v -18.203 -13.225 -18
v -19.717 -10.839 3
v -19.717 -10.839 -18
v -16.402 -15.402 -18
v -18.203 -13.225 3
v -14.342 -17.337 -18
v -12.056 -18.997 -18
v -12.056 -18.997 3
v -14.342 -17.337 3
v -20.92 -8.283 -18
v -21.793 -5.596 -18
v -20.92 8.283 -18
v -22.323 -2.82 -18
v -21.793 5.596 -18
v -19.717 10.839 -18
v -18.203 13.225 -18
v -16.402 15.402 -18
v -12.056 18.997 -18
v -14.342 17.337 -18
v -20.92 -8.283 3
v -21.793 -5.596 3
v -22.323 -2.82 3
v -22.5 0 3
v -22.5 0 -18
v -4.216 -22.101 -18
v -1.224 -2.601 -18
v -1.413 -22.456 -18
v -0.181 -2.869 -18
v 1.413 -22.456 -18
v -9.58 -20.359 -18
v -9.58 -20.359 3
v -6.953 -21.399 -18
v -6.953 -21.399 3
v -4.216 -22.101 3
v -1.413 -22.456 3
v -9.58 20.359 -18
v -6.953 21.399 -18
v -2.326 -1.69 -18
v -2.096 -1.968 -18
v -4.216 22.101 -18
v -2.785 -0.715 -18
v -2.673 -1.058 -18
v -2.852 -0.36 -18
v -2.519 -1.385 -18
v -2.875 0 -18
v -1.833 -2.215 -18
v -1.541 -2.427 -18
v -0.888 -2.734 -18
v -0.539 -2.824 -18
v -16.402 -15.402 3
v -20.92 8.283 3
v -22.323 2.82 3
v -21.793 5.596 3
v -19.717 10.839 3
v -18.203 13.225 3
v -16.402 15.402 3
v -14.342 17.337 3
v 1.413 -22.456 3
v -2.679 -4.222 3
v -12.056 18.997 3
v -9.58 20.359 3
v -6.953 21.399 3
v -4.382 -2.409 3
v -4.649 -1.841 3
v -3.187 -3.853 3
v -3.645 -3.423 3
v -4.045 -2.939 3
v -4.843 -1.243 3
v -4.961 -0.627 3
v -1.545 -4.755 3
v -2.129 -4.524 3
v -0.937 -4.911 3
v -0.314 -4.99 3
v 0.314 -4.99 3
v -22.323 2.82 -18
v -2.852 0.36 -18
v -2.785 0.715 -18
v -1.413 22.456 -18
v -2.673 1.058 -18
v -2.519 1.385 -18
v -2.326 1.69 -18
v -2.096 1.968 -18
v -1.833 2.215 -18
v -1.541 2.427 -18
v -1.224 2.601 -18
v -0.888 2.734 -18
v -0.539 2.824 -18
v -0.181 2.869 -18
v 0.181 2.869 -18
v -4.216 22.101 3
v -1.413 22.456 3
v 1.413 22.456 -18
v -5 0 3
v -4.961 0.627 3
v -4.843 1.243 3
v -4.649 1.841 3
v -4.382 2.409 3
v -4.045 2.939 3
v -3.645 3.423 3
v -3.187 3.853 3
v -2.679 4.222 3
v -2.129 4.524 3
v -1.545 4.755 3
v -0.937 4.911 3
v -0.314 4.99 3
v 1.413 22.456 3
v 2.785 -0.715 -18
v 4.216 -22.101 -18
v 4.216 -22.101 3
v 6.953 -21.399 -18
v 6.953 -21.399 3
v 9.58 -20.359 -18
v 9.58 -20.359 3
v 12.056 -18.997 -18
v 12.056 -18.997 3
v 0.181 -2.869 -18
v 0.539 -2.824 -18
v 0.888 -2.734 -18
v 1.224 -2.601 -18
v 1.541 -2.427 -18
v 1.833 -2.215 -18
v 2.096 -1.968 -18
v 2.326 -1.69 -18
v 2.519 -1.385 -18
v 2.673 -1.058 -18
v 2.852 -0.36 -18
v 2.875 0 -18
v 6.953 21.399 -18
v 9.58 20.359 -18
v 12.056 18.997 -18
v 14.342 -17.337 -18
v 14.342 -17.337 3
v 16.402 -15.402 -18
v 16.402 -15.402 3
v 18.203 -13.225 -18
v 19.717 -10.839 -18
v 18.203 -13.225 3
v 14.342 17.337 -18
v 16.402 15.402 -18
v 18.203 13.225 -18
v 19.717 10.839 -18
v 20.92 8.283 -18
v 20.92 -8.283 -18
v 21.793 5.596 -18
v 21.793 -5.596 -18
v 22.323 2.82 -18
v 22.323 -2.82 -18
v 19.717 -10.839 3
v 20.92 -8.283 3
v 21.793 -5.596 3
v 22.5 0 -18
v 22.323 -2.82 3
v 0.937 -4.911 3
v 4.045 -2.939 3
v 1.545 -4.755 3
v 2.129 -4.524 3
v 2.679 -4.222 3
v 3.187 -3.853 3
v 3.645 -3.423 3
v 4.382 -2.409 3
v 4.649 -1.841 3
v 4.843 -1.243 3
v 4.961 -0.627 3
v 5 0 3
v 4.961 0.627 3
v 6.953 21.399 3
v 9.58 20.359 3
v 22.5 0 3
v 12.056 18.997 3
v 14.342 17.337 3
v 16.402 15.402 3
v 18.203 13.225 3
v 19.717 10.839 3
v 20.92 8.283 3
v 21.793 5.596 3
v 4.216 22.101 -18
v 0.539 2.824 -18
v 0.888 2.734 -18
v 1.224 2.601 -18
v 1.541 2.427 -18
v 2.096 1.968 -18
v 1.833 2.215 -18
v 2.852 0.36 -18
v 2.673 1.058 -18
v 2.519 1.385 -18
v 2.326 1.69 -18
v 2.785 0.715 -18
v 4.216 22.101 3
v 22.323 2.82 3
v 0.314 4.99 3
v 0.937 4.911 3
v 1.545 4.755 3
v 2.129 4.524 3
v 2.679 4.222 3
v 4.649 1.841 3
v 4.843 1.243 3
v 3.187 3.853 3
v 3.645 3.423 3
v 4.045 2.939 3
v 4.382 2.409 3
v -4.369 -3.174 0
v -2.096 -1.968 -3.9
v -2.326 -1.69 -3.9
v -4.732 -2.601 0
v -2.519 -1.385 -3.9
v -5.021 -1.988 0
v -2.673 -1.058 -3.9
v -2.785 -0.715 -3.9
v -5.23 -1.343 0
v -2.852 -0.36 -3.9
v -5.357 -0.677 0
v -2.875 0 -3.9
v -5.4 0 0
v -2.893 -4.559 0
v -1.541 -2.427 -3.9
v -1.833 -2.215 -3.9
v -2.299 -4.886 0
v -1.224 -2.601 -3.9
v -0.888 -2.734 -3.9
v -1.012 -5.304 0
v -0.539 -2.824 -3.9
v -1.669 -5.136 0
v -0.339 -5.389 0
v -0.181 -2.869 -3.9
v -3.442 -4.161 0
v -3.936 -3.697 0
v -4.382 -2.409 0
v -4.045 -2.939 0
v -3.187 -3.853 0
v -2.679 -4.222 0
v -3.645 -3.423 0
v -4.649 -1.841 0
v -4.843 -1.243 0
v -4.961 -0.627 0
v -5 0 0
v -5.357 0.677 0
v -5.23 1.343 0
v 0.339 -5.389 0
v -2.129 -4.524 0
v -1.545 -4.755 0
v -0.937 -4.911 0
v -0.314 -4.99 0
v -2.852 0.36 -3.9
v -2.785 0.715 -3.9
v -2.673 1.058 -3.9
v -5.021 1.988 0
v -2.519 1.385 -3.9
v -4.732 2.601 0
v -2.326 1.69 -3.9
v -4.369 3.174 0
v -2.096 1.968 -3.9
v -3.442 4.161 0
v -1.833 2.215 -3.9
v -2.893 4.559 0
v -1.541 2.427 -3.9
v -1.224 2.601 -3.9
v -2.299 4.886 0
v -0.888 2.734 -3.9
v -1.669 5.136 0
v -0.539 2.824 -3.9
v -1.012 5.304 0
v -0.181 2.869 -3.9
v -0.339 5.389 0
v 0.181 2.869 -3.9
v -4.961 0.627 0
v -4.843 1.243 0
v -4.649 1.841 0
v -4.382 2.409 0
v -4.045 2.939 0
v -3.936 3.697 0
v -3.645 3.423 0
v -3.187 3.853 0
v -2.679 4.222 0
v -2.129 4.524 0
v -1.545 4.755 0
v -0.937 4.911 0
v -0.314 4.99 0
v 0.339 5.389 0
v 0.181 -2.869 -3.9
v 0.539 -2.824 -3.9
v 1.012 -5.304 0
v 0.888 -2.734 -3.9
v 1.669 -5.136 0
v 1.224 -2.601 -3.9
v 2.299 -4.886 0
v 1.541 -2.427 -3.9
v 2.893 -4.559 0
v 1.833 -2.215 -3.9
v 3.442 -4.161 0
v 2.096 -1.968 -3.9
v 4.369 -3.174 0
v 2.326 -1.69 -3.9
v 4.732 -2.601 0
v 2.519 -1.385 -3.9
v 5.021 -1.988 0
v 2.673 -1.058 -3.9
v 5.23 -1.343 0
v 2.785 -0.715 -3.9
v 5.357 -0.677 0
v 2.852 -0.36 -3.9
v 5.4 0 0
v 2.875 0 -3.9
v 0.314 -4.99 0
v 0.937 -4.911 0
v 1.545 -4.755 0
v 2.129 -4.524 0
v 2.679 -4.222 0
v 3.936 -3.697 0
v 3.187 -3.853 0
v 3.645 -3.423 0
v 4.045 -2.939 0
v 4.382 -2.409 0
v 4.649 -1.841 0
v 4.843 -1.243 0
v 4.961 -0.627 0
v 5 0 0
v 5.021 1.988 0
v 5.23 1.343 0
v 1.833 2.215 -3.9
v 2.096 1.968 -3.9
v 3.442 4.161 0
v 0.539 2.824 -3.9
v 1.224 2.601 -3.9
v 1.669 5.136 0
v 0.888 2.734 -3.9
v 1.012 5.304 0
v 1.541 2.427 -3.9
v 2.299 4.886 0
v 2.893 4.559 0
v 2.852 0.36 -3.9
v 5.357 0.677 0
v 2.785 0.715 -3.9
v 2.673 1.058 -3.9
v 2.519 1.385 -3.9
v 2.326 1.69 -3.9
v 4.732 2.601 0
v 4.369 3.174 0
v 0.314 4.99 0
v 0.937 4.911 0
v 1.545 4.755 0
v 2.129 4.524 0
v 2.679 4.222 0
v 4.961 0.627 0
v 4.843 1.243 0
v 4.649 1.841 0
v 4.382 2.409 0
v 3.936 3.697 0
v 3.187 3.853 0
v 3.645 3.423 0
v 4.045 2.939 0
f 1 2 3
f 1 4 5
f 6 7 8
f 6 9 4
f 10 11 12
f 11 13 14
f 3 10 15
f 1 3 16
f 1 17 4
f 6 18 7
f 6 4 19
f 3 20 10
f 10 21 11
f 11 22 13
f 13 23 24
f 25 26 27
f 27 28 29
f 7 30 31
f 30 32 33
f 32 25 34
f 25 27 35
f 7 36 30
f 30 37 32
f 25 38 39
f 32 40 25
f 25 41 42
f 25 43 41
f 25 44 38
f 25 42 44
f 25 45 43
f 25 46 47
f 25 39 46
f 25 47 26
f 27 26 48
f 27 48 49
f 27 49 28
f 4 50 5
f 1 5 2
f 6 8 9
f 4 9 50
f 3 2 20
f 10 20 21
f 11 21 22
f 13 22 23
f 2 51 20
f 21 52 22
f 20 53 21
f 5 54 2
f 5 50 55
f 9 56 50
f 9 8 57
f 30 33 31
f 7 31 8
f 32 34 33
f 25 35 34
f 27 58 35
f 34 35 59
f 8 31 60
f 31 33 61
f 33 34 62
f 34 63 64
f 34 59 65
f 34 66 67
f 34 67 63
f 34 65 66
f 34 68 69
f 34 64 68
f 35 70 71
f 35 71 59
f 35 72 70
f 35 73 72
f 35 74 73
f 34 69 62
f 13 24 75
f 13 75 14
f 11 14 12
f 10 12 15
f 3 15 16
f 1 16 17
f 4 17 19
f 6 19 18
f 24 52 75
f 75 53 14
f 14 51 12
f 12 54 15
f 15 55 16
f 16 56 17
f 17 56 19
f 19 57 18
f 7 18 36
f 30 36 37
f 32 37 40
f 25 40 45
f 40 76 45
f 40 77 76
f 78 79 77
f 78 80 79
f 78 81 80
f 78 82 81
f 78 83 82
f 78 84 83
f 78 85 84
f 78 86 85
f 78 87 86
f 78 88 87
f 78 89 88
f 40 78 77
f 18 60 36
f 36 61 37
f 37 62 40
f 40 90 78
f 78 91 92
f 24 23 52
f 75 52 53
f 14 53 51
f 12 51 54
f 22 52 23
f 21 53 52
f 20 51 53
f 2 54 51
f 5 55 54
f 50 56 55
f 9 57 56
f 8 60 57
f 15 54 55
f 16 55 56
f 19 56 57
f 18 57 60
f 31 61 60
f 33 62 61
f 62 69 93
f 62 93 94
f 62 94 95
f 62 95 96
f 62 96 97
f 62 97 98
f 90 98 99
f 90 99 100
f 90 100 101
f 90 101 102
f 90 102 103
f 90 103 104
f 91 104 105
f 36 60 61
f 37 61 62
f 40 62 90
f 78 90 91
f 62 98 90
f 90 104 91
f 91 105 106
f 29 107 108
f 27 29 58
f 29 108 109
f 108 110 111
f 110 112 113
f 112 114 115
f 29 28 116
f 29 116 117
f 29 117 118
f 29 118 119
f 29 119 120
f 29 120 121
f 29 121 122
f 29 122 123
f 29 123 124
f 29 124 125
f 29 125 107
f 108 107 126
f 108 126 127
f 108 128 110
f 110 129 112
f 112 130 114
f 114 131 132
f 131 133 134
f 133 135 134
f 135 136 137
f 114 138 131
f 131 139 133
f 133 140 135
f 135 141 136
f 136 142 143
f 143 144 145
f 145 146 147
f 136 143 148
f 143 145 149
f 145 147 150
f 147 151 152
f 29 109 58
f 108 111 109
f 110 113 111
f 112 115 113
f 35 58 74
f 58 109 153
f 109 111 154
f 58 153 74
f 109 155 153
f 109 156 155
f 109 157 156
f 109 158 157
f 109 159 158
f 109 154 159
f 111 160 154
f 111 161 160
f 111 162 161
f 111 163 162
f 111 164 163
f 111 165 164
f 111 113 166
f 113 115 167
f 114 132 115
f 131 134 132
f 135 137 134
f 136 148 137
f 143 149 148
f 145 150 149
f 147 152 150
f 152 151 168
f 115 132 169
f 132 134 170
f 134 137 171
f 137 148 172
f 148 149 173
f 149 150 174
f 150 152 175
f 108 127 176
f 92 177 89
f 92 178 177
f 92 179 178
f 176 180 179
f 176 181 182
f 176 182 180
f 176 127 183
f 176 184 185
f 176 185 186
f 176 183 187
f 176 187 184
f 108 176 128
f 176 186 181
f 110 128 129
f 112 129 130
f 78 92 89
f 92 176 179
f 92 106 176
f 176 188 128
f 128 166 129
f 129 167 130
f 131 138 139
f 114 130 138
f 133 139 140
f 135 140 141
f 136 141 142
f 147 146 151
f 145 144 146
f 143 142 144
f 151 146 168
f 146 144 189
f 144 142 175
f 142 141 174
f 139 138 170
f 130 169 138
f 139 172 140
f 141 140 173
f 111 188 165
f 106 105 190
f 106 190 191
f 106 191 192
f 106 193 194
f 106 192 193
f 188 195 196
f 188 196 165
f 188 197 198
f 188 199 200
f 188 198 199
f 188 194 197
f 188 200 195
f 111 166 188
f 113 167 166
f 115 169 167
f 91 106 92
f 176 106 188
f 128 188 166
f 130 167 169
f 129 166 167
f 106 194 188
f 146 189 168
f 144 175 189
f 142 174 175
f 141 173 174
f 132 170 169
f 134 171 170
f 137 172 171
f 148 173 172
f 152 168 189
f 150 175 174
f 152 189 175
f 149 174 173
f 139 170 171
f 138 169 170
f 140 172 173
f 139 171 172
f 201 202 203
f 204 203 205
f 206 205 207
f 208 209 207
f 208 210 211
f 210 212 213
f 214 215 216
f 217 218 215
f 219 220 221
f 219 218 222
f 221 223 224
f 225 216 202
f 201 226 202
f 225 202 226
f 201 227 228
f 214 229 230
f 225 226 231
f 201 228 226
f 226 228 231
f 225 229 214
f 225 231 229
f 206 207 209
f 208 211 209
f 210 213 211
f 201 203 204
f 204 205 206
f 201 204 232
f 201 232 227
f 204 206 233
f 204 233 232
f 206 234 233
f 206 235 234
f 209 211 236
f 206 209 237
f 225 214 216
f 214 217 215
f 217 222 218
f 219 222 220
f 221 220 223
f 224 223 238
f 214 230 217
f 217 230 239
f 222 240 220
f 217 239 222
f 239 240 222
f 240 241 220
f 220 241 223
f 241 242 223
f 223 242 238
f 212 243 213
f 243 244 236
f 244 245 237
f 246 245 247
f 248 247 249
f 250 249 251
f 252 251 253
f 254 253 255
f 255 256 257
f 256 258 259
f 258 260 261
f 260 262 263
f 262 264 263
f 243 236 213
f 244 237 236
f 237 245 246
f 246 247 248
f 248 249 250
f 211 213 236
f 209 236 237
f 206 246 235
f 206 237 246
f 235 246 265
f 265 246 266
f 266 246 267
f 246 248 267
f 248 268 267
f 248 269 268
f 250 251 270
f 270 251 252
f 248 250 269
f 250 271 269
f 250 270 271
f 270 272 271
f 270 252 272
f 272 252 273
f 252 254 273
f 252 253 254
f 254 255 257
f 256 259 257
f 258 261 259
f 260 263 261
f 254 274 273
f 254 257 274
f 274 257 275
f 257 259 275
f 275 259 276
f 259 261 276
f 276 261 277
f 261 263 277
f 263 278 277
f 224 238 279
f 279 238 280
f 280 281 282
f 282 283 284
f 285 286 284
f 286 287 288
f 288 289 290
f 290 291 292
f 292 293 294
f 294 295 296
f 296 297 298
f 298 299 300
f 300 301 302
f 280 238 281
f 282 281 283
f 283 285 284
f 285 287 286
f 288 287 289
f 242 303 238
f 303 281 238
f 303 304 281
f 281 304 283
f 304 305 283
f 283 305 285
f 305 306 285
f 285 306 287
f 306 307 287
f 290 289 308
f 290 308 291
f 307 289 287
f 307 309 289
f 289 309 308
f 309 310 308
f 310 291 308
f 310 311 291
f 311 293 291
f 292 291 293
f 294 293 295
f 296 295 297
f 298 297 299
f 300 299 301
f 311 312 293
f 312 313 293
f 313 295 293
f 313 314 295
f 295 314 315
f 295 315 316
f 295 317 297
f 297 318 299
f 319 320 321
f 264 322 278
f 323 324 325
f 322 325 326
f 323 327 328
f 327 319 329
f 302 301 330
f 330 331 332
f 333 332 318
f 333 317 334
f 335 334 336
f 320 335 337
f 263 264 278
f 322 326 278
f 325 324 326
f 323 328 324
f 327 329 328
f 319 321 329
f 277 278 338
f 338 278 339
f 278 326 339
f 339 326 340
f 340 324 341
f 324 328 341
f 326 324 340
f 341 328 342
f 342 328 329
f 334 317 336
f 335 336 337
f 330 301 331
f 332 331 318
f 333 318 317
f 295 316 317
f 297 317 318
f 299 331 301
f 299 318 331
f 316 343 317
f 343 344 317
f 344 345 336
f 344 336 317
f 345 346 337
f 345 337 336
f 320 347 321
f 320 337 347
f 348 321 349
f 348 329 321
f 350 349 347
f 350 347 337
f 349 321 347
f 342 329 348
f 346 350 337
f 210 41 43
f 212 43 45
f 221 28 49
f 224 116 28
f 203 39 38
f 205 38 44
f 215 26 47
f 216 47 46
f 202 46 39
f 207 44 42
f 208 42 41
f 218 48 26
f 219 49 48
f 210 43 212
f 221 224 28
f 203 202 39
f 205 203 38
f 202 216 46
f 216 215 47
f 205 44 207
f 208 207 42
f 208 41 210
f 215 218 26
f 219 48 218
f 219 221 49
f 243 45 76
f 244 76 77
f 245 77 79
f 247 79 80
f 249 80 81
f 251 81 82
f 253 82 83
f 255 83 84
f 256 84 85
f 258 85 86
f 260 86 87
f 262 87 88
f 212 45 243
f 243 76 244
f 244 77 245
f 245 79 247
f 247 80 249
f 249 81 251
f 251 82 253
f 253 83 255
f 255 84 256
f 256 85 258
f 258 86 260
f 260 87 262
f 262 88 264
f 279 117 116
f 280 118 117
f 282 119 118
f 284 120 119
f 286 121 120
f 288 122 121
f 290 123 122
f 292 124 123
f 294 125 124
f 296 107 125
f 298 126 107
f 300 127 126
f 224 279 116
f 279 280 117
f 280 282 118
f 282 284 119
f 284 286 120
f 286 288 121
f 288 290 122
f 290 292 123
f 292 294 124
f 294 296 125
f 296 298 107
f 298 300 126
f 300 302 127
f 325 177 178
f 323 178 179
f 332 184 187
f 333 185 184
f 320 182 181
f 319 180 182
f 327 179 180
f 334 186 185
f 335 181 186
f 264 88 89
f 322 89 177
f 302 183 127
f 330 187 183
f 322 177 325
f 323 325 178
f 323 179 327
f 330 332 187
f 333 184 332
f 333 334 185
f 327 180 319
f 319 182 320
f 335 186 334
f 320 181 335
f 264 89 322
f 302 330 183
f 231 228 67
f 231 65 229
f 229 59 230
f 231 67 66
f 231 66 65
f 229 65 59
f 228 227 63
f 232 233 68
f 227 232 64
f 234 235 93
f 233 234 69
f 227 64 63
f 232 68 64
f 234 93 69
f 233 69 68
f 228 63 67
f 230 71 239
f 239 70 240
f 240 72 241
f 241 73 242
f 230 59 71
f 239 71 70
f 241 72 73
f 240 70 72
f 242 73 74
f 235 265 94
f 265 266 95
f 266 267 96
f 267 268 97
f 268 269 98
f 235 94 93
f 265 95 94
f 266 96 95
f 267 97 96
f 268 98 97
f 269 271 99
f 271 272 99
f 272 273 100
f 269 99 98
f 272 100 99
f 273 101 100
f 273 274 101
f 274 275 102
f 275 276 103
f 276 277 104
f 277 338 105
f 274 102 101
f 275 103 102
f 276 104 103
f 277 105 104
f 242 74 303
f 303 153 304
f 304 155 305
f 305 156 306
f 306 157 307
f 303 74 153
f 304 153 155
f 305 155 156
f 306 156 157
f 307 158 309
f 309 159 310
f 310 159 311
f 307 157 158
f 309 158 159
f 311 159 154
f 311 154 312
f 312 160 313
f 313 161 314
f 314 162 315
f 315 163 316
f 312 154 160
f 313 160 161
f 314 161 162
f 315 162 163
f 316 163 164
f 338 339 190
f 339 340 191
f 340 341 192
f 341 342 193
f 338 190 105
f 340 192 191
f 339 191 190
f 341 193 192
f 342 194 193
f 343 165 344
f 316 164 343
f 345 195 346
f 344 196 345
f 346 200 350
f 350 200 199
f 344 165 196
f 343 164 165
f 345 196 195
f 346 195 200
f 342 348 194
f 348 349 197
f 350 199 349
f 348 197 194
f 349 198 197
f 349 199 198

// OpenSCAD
$fn = 50;

difference() {
	union() {
		translate(v = [0, 0, -18.0]) {
			cylinder(h = 21, r = 22.5);
		}
		#translate(v = [0, 0, -21.0]) {
			cylinder(h = 21, r = 2.875);
		}
	}
	union() {
		translate(v = [0, 0, 0]) {
			rotate(a = [0, 0, 0]) {
				difference() {
					union() {
						translate(v = [0, 0, -21.0]) {
							cylinder(h = 21, r = 2.6);
						}
						translate(v = [0, 0, -3.9]) {
							cylinder(h = 3.9, r1 = 2.875, r2 = 5.4);
						}
						translate(v = [0, 0, -21.0]) {
							cylinder(h = 21, r = 2.875);
						}
						translate(v = [0, 0, -21.0]) {
							cylinder(h = 21, r = 2.6);
						}
					}
					union();
				}
			}
		}
		#cylinder(h = 3, r = 5.0);
	}
}
